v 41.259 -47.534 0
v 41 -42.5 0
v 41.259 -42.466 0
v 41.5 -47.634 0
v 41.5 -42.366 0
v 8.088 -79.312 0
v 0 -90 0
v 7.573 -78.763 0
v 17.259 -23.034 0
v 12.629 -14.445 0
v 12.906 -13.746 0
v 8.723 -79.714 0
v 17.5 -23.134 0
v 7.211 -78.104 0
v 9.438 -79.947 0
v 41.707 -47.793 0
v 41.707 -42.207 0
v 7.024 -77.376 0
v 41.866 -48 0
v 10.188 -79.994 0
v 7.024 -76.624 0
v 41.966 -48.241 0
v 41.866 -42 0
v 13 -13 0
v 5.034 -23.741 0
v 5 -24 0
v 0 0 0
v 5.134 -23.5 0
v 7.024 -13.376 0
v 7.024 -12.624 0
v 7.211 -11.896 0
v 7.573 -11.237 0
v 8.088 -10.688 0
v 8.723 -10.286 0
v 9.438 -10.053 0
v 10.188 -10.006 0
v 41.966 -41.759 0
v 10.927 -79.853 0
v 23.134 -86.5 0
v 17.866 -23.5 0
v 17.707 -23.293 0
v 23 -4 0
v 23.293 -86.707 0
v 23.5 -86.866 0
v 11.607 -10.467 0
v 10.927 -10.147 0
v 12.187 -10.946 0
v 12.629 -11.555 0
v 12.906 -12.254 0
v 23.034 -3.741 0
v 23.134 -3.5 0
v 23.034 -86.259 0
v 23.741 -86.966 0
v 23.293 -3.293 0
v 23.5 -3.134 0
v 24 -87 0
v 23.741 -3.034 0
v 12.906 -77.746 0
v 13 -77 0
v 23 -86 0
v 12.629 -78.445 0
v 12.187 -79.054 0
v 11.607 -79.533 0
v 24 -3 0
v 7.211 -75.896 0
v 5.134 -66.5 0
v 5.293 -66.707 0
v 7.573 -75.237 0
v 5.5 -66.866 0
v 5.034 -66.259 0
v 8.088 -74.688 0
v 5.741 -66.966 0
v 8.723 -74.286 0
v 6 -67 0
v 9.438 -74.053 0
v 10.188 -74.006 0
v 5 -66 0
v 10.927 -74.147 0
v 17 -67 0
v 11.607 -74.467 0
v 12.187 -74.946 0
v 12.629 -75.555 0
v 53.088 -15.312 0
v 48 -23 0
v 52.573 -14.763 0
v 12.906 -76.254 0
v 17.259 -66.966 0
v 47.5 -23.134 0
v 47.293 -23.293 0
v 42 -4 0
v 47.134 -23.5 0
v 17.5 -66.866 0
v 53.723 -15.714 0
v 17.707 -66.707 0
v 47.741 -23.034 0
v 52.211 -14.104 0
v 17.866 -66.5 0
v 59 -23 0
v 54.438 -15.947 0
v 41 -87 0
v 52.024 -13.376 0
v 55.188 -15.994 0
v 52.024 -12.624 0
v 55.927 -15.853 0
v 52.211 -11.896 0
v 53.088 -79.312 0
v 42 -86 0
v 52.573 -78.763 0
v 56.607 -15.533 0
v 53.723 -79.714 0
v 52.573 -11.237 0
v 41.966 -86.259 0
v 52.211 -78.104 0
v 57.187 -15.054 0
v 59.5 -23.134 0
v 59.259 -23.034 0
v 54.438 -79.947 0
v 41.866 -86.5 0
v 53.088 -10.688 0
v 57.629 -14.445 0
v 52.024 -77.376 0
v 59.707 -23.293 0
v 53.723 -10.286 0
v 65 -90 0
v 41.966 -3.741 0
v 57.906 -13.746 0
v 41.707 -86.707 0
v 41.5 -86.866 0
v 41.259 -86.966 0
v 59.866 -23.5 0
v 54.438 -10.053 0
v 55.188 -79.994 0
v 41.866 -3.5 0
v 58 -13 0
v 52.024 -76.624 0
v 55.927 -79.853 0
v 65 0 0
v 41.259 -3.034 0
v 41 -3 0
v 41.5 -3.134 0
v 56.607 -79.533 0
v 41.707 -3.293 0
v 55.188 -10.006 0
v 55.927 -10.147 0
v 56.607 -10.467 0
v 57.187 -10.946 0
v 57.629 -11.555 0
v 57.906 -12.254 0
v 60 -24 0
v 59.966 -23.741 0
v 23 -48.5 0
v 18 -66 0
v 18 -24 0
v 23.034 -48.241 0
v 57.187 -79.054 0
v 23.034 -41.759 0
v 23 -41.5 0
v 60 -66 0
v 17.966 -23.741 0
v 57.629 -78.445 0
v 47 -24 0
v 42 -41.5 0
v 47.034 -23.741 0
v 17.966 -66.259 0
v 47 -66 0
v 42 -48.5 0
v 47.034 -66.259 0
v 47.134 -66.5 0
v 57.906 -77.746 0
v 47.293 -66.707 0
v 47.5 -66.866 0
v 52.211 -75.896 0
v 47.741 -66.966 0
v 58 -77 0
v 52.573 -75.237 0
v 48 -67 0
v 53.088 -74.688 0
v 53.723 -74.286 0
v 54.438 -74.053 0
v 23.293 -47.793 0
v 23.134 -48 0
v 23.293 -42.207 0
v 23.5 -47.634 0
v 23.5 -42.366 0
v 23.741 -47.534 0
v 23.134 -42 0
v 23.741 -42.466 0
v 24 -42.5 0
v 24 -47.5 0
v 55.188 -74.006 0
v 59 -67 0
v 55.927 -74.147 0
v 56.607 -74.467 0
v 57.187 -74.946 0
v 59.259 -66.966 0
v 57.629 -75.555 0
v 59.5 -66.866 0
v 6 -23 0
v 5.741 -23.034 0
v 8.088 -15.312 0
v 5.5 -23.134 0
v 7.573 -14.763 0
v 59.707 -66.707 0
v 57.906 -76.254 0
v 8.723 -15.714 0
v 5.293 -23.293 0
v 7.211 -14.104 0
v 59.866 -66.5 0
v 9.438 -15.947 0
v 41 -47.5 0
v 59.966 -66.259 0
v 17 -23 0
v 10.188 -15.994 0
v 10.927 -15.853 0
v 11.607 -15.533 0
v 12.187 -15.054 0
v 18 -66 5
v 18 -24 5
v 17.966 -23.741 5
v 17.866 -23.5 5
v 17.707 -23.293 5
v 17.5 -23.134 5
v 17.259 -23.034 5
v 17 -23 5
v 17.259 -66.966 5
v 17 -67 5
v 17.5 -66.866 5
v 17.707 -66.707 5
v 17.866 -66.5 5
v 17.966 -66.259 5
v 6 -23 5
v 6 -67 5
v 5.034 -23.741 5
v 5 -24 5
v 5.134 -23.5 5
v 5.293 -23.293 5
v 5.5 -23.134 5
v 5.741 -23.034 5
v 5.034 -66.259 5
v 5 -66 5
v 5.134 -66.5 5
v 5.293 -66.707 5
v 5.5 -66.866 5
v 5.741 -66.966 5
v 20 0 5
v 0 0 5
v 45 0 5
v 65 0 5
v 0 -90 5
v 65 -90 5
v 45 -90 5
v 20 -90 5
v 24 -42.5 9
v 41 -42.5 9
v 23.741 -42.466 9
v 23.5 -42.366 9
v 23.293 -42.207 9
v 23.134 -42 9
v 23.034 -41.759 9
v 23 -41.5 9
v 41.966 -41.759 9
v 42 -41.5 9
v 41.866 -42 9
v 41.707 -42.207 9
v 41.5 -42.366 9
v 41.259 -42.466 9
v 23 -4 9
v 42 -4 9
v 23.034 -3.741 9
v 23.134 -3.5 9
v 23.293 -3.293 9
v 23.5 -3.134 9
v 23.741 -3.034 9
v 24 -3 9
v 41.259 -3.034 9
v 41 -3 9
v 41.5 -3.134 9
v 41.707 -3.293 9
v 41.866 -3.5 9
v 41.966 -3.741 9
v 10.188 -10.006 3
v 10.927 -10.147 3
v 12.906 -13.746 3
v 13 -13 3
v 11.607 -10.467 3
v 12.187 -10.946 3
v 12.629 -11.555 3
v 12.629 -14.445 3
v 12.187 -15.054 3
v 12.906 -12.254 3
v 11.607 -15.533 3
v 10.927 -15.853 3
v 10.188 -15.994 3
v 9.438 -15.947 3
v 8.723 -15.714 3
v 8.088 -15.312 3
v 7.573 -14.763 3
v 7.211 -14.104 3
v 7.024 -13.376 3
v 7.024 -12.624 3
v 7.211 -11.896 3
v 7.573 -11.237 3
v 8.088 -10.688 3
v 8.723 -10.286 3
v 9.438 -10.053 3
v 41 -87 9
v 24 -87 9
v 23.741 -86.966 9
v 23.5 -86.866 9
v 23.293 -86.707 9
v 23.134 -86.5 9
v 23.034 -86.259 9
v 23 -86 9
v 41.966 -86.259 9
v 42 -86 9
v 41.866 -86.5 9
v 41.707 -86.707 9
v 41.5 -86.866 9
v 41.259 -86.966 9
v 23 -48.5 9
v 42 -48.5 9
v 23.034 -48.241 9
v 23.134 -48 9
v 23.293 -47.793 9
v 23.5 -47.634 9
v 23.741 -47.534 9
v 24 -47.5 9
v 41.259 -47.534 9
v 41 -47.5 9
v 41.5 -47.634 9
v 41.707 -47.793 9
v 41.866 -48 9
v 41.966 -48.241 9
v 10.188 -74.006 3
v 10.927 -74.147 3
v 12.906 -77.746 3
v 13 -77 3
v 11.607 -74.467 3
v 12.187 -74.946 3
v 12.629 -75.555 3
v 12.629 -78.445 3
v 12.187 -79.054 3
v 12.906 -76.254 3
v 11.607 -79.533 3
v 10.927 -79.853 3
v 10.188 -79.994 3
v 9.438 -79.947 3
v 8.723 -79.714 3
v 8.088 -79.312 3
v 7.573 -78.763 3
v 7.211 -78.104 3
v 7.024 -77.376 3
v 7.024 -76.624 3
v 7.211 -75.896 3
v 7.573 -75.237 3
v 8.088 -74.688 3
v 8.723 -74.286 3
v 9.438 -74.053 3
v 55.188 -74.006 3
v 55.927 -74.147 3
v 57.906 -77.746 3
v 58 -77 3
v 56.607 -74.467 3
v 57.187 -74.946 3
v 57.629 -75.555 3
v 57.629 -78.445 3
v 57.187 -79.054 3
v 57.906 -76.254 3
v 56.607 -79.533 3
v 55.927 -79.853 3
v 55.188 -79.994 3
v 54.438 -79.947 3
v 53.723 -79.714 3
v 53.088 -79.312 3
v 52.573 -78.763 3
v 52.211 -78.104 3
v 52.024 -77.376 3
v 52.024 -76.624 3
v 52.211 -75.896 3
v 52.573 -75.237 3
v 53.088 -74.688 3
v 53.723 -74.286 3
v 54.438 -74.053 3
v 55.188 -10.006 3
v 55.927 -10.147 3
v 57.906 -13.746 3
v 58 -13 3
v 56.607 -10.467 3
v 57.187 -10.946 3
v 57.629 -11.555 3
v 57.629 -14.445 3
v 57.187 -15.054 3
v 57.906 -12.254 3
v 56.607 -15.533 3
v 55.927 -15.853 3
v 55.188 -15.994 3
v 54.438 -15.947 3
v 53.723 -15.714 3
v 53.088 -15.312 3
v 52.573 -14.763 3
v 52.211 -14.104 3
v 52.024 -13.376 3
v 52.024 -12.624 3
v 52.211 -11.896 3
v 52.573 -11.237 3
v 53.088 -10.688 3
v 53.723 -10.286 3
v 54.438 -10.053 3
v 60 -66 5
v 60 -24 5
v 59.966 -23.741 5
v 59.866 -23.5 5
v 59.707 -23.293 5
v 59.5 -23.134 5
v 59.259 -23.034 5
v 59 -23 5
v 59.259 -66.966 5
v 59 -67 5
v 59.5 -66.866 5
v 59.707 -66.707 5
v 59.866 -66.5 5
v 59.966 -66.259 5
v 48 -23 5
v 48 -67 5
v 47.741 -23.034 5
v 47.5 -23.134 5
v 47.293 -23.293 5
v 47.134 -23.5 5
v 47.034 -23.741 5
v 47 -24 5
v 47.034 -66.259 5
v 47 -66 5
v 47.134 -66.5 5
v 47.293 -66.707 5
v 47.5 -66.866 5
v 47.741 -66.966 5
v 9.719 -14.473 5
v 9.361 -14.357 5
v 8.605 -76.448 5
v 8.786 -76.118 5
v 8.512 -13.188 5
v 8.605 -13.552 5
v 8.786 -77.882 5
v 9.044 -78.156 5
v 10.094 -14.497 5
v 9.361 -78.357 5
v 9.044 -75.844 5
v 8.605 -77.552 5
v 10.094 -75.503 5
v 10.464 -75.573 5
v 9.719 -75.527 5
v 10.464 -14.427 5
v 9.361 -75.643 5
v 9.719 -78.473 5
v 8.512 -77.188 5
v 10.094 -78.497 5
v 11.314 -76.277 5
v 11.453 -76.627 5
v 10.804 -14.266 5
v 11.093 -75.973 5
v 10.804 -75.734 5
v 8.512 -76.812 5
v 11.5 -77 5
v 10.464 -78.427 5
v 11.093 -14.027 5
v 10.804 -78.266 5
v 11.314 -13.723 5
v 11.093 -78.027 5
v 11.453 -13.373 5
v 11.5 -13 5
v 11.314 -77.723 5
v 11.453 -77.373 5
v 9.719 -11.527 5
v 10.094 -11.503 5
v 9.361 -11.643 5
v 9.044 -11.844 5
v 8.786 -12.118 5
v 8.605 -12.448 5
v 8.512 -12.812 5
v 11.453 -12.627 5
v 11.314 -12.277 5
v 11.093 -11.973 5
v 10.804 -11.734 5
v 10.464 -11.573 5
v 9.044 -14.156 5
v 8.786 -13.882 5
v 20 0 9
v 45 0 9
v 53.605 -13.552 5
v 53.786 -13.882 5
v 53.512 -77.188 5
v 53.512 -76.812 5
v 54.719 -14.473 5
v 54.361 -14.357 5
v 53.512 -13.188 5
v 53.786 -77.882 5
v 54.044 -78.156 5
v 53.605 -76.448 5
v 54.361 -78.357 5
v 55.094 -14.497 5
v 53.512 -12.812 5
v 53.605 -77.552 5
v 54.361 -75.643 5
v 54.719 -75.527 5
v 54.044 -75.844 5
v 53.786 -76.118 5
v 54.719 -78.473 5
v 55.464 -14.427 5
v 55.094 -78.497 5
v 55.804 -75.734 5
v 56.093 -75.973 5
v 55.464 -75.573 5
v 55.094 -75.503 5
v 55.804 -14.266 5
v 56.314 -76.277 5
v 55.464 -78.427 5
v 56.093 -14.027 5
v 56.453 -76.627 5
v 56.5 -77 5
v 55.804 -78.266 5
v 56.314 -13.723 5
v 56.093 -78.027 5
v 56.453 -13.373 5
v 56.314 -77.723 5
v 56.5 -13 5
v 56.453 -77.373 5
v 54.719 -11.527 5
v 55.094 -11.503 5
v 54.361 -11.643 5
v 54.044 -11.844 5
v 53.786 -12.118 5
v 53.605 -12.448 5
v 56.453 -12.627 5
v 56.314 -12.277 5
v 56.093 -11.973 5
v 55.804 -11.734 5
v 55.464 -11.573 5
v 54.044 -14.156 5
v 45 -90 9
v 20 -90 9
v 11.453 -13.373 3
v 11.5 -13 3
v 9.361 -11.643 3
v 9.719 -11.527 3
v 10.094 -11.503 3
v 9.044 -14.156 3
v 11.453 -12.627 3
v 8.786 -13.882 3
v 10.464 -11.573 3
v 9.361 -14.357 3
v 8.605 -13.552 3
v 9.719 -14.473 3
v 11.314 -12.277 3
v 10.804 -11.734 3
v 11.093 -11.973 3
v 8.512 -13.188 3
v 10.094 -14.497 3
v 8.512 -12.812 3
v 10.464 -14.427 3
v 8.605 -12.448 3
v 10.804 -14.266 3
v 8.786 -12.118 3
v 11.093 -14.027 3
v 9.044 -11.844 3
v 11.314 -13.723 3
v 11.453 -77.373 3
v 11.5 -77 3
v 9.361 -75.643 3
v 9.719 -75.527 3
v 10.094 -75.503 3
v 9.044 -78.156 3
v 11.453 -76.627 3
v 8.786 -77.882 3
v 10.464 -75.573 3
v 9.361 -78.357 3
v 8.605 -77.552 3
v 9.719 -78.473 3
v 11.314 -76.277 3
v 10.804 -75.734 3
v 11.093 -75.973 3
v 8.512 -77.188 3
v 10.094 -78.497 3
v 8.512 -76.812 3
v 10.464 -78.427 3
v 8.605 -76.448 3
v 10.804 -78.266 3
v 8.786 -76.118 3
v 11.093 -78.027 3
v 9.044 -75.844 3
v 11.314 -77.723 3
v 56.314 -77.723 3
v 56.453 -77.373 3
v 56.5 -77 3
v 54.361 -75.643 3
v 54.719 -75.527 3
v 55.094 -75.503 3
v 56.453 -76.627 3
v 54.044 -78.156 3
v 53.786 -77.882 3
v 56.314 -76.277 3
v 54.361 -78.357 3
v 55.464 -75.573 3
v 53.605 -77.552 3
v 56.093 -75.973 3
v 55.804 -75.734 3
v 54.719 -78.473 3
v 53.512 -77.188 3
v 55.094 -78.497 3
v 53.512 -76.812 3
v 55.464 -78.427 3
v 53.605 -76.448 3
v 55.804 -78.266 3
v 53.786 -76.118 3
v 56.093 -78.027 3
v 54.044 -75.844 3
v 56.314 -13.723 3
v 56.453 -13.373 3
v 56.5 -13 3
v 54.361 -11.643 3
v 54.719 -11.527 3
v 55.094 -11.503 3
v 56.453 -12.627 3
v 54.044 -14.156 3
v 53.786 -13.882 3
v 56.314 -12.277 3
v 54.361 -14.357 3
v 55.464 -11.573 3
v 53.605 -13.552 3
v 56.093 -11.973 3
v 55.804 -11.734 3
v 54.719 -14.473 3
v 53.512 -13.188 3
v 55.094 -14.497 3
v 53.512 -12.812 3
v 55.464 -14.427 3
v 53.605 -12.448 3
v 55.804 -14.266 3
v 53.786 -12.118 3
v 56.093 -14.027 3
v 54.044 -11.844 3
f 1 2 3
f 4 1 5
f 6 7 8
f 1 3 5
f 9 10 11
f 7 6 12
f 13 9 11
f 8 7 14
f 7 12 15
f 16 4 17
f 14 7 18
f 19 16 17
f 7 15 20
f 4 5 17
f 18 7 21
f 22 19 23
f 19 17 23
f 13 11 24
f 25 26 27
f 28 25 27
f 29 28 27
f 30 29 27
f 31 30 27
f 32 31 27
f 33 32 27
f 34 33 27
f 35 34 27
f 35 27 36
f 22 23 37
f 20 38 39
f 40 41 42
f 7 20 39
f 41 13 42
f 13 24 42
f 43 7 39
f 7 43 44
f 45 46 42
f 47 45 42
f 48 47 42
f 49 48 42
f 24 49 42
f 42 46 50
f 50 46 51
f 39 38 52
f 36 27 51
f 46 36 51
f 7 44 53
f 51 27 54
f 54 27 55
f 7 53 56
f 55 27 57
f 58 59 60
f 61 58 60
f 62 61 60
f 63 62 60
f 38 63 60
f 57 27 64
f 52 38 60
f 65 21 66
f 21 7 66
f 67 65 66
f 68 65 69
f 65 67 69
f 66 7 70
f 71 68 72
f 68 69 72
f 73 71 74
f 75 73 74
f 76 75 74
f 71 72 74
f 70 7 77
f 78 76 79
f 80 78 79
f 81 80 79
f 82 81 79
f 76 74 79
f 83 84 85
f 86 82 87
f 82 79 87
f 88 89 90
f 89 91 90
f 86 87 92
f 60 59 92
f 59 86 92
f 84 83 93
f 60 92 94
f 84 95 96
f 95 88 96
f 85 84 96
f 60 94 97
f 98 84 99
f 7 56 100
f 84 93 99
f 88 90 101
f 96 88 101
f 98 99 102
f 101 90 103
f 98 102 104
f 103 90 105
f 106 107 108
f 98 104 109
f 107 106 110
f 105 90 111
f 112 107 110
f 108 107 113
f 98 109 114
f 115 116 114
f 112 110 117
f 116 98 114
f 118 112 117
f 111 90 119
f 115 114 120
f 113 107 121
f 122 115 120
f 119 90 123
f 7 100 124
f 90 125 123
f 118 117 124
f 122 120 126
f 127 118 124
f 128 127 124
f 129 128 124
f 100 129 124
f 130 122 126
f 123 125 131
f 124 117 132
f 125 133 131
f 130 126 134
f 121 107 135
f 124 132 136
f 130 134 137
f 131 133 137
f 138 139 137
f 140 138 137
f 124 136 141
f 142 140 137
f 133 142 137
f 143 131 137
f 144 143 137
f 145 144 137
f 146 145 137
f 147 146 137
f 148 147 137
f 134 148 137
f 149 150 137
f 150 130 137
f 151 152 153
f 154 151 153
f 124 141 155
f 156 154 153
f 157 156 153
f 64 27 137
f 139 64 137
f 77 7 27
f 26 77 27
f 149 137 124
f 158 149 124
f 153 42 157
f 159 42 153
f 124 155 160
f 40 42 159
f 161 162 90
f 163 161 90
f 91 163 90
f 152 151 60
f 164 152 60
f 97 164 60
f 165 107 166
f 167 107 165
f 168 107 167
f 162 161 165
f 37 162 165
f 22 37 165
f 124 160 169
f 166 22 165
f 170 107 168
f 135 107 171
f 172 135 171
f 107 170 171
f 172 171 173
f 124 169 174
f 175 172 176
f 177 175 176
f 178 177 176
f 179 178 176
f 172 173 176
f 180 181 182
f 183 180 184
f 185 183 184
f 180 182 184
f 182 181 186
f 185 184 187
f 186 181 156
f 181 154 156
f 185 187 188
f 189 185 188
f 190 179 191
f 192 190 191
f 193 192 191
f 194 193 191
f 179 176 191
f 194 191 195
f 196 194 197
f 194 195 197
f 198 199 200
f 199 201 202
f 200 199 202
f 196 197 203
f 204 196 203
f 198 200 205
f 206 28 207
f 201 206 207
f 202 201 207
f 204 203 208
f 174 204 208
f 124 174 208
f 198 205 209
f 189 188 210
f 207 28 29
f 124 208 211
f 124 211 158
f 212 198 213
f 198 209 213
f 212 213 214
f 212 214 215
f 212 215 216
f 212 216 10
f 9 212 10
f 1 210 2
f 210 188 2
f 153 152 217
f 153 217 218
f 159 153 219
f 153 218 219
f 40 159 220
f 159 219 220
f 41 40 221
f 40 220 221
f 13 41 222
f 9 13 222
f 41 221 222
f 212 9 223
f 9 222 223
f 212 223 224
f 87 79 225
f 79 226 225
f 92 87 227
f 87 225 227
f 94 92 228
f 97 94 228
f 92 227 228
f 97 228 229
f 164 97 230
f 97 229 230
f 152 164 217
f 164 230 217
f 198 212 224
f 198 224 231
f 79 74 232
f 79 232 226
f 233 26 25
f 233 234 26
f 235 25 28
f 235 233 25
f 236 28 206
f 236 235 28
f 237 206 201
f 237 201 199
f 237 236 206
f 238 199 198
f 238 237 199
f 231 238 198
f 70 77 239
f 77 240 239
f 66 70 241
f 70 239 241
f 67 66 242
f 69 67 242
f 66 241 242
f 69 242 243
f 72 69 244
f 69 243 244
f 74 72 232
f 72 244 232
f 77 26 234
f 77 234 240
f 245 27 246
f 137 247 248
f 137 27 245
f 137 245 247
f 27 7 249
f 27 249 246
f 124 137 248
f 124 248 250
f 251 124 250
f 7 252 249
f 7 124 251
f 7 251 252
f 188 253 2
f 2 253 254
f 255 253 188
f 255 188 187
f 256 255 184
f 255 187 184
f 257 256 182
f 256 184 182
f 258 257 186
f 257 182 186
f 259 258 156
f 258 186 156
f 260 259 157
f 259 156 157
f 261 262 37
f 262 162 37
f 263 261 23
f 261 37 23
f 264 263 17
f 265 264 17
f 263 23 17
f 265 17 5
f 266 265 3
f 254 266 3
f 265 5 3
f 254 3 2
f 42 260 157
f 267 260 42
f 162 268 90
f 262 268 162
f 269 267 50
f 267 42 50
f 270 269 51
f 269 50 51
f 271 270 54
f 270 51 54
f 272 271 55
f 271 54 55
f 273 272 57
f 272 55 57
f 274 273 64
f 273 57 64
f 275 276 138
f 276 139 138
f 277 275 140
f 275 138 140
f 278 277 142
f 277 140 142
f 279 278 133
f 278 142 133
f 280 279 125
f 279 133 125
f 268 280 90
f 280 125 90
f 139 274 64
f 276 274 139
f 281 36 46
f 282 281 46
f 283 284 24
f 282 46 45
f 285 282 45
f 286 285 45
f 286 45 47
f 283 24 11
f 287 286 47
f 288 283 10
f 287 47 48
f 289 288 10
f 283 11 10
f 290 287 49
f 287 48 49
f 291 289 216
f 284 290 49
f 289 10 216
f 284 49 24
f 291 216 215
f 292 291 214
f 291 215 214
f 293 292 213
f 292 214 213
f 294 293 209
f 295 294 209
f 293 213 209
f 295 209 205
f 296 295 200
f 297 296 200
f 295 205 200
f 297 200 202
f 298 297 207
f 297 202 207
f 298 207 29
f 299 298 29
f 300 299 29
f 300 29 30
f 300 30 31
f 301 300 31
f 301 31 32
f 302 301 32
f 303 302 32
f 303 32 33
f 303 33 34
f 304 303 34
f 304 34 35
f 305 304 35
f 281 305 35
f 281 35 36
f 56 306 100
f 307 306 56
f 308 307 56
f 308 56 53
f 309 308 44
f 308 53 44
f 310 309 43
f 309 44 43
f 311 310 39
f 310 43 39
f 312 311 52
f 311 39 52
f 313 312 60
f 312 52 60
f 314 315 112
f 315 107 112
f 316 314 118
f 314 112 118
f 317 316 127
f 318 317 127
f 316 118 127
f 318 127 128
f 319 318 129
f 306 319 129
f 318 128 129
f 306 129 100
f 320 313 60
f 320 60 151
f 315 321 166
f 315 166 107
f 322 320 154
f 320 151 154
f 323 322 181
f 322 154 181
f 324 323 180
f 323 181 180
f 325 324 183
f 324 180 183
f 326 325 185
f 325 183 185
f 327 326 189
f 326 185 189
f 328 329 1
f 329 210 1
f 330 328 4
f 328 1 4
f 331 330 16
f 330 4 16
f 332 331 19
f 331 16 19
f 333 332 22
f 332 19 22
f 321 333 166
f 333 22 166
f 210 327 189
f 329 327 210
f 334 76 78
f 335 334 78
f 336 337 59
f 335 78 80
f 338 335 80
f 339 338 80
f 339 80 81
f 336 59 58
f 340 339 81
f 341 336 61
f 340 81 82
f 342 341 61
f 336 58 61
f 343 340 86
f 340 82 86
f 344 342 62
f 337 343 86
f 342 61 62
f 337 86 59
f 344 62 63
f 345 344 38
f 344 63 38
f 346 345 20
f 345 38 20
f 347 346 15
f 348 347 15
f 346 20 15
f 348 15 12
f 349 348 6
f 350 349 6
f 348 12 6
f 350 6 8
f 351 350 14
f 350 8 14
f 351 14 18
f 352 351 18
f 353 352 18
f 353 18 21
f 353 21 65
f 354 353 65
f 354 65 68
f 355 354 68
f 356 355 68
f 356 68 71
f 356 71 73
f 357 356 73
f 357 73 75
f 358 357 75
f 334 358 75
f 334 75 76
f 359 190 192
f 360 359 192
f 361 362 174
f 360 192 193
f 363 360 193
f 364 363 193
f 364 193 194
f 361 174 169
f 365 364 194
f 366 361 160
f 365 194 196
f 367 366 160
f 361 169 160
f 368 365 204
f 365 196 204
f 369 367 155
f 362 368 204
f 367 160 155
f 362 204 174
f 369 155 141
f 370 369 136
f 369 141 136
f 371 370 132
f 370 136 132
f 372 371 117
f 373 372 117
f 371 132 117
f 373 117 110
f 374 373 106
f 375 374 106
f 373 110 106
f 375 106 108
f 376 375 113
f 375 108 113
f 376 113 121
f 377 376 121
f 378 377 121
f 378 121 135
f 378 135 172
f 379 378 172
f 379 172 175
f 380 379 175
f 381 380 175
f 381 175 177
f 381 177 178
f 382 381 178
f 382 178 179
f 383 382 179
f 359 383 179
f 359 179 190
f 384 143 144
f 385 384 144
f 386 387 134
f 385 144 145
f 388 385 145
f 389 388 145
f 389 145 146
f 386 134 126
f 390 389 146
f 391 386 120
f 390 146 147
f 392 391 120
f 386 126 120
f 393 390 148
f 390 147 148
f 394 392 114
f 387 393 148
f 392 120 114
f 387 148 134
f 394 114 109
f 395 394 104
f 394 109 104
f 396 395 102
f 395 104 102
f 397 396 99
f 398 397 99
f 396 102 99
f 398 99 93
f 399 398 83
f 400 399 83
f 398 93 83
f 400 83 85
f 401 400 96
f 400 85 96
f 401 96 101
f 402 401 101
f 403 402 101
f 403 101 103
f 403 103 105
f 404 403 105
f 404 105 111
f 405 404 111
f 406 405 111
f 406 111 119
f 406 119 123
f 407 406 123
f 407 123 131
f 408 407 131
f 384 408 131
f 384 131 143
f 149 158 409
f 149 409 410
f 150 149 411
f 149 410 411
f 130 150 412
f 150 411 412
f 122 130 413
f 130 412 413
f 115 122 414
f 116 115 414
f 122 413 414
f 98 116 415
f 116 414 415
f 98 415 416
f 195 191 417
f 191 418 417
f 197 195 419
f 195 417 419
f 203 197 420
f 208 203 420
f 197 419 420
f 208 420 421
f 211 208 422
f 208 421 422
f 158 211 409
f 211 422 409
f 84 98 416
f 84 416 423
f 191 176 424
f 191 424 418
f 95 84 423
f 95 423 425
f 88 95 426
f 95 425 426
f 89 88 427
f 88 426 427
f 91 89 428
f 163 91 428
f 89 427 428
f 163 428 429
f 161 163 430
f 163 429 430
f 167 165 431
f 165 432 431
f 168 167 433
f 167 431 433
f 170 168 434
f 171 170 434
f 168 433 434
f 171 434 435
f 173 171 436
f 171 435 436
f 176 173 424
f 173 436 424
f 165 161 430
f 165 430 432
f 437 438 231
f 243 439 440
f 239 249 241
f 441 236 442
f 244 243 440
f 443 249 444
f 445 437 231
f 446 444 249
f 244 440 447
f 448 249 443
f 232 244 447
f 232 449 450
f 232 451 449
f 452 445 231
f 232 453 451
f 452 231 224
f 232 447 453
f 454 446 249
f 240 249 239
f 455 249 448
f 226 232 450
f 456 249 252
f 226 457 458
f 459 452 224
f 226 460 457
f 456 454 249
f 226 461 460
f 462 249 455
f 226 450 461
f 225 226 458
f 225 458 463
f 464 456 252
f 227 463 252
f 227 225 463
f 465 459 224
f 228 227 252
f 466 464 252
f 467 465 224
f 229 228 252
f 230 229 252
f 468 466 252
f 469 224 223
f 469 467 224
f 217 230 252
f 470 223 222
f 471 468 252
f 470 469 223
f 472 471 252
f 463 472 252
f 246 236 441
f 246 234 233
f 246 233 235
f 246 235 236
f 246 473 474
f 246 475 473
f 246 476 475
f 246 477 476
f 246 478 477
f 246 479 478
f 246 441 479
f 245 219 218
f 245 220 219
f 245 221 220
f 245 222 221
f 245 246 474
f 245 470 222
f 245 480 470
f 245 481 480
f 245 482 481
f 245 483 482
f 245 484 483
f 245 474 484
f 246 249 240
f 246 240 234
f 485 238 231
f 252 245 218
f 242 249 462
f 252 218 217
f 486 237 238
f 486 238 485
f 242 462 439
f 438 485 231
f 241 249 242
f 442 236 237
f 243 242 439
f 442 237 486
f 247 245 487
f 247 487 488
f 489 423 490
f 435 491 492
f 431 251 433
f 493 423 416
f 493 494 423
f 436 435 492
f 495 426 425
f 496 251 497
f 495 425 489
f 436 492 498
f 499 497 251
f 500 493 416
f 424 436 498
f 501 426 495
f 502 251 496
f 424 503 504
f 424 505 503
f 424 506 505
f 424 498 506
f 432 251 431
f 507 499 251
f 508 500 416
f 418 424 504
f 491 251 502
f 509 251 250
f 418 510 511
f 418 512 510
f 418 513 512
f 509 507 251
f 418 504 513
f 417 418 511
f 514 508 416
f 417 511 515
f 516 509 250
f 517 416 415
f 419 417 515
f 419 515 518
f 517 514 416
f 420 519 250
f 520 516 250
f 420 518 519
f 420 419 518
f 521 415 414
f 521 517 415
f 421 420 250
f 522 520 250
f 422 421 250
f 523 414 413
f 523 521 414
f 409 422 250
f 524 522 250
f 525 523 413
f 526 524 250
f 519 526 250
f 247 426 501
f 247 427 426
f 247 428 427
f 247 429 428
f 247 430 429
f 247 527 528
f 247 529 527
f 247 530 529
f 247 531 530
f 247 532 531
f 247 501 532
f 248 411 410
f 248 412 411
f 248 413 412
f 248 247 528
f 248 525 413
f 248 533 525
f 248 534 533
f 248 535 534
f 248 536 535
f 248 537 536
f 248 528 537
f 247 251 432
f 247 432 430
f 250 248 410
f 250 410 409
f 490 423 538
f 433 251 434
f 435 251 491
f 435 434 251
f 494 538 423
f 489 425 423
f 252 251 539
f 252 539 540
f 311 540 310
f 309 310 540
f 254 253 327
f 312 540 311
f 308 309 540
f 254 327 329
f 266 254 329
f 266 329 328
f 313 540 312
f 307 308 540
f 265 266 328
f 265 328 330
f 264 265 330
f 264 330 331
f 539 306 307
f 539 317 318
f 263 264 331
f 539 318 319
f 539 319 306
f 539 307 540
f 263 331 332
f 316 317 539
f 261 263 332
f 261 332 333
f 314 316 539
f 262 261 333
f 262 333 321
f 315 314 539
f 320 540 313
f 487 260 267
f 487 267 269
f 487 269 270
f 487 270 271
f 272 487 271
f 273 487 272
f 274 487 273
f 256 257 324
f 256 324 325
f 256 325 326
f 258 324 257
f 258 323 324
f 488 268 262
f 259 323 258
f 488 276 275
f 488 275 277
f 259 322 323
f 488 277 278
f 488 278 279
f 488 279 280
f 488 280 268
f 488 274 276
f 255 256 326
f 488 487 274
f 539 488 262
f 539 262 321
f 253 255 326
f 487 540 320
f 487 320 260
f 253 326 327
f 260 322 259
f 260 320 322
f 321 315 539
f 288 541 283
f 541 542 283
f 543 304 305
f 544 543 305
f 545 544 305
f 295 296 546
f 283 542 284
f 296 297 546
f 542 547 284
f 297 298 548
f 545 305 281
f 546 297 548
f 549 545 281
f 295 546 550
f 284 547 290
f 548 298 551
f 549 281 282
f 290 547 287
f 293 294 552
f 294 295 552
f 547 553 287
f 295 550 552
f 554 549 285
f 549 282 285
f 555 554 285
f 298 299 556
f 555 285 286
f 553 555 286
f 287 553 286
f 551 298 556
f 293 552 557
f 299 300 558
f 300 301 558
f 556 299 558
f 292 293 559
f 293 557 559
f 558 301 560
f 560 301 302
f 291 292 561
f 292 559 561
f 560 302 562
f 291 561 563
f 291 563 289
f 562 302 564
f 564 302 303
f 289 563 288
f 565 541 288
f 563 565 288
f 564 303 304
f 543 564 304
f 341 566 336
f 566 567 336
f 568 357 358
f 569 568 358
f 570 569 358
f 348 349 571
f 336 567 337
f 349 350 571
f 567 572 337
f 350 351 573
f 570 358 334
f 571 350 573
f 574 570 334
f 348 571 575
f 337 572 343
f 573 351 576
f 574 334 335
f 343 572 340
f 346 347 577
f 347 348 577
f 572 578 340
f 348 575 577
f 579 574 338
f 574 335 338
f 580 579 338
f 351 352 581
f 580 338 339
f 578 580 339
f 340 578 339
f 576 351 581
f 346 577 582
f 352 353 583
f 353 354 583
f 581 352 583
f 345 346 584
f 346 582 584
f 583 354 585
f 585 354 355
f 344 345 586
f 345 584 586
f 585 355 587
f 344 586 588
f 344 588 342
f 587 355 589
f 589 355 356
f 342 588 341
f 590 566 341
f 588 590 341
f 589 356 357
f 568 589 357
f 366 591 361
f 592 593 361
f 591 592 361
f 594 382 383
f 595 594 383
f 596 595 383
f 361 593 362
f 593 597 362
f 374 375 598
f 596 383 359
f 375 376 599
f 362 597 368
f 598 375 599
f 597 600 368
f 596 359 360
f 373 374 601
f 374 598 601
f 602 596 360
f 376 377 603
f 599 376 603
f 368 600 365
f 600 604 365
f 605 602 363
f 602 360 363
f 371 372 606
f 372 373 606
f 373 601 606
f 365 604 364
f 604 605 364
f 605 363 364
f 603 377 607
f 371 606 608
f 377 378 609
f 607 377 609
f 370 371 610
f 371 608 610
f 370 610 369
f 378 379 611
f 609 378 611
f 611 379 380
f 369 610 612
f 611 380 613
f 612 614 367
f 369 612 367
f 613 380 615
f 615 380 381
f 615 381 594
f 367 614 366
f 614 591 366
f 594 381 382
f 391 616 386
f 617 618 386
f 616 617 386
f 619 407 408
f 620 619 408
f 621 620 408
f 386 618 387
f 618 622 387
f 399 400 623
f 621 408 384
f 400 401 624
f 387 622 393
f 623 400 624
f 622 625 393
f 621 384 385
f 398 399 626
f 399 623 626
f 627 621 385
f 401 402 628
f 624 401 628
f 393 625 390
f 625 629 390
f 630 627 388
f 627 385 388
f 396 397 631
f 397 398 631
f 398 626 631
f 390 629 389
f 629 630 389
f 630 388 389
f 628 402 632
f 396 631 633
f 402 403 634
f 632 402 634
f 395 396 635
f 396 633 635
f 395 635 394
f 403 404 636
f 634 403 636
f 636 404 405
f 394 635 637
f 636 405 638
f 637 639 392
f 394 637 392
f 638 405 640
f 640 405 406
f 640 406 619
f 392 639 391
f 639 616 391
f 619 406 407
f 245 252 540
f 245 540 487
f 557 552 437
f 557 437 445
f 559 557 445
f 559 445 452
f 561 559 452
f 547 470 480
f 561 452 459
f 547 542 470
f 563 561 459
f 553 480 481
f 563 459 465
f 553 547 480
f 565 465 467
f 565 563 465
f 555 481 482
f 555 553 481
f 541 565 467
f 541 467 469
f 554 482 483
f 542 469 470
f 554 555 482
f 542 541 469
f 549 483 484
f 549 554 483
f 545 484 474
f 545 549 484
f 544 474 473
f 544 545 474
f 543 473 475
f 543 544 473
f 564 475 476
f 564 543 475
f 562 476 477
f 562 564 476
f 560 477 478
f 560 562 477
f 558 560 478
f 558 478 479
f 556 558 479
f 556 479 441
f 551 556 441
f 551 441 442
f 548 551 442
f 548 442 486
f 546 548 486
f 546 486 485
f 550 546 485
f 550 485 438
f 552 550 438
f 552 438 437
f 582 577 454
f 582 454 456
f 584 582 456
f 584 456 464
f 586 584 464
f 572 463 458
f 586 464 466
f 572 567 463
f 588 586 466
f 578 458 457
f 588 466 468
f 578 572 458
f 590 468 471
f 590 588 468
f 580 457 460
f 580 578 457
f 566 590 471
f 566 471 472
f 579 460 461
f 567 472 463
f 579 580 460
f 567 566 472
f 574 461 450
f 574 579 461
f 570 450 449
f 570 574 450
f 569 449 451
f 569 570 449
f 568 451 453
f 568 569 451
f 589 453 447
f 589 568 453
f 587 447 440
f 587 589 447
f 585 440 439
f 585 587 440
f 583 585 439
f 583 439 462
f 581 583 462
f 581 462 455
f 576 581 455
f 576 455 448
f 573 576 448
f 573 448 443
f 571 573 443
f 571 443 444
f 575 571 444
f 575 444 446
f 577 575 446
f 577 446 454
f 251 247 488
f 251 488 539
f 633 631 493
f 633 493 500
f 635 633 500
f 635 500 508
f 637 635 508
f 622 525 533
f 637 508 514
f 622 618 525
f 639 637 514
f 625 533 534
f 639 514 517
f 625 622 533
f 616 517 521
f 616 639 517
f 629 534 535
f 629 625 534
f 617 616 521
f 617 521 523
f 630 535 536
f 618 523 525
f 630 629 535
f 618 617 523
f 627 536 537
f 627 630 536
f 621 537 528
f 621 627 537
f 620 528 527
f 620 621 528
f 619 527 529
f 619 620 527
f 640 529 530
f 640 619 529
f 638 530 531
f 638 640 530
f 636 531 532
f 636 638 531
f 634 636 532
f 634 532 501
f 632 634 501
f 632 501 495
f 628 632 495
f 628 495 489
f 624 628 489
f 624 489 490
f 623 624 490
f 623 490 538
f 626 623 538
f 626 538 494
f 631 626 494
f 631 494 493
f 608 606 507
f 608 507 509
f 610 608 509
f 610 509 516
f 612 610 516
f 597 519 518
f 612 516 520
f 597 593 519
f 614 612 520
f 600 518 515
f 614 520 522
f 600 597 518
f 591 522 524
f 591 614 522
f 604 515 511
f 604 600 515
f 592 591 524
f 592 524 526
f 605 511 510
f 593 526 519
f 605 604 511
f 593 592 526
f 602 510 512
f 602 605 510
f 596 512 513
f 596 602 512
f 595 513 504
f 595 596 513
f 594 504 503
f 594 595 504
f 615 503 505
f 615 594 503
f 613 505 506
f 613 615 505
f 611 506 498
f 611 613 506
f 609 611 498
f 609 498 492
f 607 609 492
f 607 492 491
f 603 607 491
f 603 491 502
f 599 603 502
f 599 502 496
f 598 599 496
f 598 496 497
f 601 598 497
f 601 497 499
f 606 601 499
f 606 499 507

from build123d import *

# Parameters (mm, degrees)
SKETCH_W        = 65
SKETCH_H        = 90
SKETCH_R        = 1.5
PAD_DEPTH       = 5
SKETCH002_W     = 25
SKETCH002_H     = 90
PAD001_DEPTH    = 4
SKETCH003_W     = 19
SKETCH003_H     = 39.5
POCKET_DEPTH    = 9.001
FILLET_R        = 1
FILLET001_R     = 1
FILLET002_R     = 1
FILLET003_R     = 1
SKETCH004_R     = 3
POCKET001_DEPTH = 3
SKETCH005_W     = 13
SKETCH005_H     = 44
POCKET002_DEPTH = 9.001
FILLET004_R     = 1
FILLET005_R     = 1
FILLET006_R     = 1
FILLET007_R     = 1


with BuildPart() as part:
    # Sketch → Pad (new body)
    with BuildSketch(Plane.XY):
        with Locations((32.5, -45)):
            Rectangle(SKETCH_W, SKETCH_H)
        with Locations((10, -13)):
            Circle(SKETCH_R, mode=Mode.SUBTRACT)
        with Locations((10, -77)):
            Circle(SKETCH_R, mode=Mode.SUBTRACT)
        with Locations((55, -13)):
            Circle(SKETCH_R, mode=Mode.SUBTRACT)
        with Locations((55, -77)):
            Circle(SKETCH_R, mode=Mode.SUBTRACT)
    extrude(amount=PAD_DEPTH)

    # Sketch002 → Pad001 (new body)
    with BuildSketch(Plane.XY.offset(5)):
        with Locations((32.5, -45)):
            Rectangle(SKETCH002_W, SKETCH002_H)
    extrude(amount=PAD001_DEPTH)

    # Sketch003 → Pocket (cut, through all)
    with BuildSketch(Plane.XY.offset(9)):
        with Locations((32.5, -22.75)):
            Rectangle(SKETCH003_W, SKETCH003_H)
        with Locations((32.5, -67.25)):
            Rectangle(SKETCH003_W, SKETCH003_H)
    extrude(amount=-POCKET_DEPTH, mode=Mode.SUBTRACT)

    # Fillet
    fillet_edges = [part.edges().sort_by_distance(p)[0] for p in [
        (23, -47.5, 4.5),
        (23, -3, 4.5),
    ]]
    fillet(fillet_edges, radius=FILLET_R)

    # Fillet001
    fillet001_edges = [part.edges().sort_by_distance(p)[0] for p in [
        (42, -3, 4.5),
        (42, -47.5, 4.5),
    ]]
    fillet(fillet001_edges, radius=FILLET001_R)

    # Fillet002
    fillet002_edges = [part.edges().sort_by_distance(p)[0] for p in [
        (42, -42.5, 4.5),
        (42, -87, 4.5),
    ]]
    fillet(fillet002_edges, radius=FILLET002_R)

    # Fillet003
    fillet003_edges = [part.edges().sort_by_distance(p)[0] for p in [
        (23, -42.5, 4.5),
        (23, -87, 4.5),
    ]]
    fillet(fillet003_edges, radius=FILLET003_R)

    # Sketch004 → Pocket001 (cut)
    with BuildSketch(Plane(origin=(0, 0, 0), x_dir=(1, 0, 0), z_dir=(0, 0, -1))):
        with Locations((10, 77)):
            Circle(SKETCH004_R)
        with Locations((55, 77)):
            Circle(SKETCH004_R)
        with Locations((55, 13)):
            Circle(SKETCH004_R)
        with Locations((10, 13)):
            Circle(SKETCH004_R)
    extrude(amount=-POCKET001_DEPTH, mode=Mode.SUBTRACT)

    # Sketch005 → Pocket002 (cut, through all)
    with BuildSketch(Plane(origin=(0, 0, 0), x_dir=(1, 0, 0), z_dir=(0, 0, -1))):
        with Locations((11.5, 45)):
            Rectangle(SKETCH005_W, SKETCH005_H)
        with Locations((53.5, 45)):
            Rectangle(SKETCH005_W, SKETCH005_H)
    extrude(amount=-POCKET002_DEPTH, mode=Mode.SUBTRACT)

    # Fillet004
    fillet004_edges = [part.edges().sort_by_distance(p)[0] for p in [
        (5, -23, 2.5),
        (47, -23, 2.5),
    ]]
    fillet(fillet004_edges, radius=FILLET004_R)

    # Fillet005
    fillet005_edges = [part.edges().sort_by_distance(p)[0] for p in [
        (5, -67, 2.5),
        (47, -67, 2.5),
    ]]
    fillet(fillet005_edges, radius=FILLET005_R)

    # Fillet006
    fillet006_edges = [part.edges().sort_by_distance(p)[0] for p in [
        (18, -67, 2.5),
        (60, -67, 2.5),
    ]]
    fillet(fillet006_edges, radius=FILLET006_R)

    # Fillet007
    fillet007_edges = [part.edges().sort_by_distance(p)[0] for p in [
        (18, -23, 2.5),
        (60, -23, 2.5),
    ]]
    fillet(fillet007_edges, radius=FILLET007_R)


solid = part.part
